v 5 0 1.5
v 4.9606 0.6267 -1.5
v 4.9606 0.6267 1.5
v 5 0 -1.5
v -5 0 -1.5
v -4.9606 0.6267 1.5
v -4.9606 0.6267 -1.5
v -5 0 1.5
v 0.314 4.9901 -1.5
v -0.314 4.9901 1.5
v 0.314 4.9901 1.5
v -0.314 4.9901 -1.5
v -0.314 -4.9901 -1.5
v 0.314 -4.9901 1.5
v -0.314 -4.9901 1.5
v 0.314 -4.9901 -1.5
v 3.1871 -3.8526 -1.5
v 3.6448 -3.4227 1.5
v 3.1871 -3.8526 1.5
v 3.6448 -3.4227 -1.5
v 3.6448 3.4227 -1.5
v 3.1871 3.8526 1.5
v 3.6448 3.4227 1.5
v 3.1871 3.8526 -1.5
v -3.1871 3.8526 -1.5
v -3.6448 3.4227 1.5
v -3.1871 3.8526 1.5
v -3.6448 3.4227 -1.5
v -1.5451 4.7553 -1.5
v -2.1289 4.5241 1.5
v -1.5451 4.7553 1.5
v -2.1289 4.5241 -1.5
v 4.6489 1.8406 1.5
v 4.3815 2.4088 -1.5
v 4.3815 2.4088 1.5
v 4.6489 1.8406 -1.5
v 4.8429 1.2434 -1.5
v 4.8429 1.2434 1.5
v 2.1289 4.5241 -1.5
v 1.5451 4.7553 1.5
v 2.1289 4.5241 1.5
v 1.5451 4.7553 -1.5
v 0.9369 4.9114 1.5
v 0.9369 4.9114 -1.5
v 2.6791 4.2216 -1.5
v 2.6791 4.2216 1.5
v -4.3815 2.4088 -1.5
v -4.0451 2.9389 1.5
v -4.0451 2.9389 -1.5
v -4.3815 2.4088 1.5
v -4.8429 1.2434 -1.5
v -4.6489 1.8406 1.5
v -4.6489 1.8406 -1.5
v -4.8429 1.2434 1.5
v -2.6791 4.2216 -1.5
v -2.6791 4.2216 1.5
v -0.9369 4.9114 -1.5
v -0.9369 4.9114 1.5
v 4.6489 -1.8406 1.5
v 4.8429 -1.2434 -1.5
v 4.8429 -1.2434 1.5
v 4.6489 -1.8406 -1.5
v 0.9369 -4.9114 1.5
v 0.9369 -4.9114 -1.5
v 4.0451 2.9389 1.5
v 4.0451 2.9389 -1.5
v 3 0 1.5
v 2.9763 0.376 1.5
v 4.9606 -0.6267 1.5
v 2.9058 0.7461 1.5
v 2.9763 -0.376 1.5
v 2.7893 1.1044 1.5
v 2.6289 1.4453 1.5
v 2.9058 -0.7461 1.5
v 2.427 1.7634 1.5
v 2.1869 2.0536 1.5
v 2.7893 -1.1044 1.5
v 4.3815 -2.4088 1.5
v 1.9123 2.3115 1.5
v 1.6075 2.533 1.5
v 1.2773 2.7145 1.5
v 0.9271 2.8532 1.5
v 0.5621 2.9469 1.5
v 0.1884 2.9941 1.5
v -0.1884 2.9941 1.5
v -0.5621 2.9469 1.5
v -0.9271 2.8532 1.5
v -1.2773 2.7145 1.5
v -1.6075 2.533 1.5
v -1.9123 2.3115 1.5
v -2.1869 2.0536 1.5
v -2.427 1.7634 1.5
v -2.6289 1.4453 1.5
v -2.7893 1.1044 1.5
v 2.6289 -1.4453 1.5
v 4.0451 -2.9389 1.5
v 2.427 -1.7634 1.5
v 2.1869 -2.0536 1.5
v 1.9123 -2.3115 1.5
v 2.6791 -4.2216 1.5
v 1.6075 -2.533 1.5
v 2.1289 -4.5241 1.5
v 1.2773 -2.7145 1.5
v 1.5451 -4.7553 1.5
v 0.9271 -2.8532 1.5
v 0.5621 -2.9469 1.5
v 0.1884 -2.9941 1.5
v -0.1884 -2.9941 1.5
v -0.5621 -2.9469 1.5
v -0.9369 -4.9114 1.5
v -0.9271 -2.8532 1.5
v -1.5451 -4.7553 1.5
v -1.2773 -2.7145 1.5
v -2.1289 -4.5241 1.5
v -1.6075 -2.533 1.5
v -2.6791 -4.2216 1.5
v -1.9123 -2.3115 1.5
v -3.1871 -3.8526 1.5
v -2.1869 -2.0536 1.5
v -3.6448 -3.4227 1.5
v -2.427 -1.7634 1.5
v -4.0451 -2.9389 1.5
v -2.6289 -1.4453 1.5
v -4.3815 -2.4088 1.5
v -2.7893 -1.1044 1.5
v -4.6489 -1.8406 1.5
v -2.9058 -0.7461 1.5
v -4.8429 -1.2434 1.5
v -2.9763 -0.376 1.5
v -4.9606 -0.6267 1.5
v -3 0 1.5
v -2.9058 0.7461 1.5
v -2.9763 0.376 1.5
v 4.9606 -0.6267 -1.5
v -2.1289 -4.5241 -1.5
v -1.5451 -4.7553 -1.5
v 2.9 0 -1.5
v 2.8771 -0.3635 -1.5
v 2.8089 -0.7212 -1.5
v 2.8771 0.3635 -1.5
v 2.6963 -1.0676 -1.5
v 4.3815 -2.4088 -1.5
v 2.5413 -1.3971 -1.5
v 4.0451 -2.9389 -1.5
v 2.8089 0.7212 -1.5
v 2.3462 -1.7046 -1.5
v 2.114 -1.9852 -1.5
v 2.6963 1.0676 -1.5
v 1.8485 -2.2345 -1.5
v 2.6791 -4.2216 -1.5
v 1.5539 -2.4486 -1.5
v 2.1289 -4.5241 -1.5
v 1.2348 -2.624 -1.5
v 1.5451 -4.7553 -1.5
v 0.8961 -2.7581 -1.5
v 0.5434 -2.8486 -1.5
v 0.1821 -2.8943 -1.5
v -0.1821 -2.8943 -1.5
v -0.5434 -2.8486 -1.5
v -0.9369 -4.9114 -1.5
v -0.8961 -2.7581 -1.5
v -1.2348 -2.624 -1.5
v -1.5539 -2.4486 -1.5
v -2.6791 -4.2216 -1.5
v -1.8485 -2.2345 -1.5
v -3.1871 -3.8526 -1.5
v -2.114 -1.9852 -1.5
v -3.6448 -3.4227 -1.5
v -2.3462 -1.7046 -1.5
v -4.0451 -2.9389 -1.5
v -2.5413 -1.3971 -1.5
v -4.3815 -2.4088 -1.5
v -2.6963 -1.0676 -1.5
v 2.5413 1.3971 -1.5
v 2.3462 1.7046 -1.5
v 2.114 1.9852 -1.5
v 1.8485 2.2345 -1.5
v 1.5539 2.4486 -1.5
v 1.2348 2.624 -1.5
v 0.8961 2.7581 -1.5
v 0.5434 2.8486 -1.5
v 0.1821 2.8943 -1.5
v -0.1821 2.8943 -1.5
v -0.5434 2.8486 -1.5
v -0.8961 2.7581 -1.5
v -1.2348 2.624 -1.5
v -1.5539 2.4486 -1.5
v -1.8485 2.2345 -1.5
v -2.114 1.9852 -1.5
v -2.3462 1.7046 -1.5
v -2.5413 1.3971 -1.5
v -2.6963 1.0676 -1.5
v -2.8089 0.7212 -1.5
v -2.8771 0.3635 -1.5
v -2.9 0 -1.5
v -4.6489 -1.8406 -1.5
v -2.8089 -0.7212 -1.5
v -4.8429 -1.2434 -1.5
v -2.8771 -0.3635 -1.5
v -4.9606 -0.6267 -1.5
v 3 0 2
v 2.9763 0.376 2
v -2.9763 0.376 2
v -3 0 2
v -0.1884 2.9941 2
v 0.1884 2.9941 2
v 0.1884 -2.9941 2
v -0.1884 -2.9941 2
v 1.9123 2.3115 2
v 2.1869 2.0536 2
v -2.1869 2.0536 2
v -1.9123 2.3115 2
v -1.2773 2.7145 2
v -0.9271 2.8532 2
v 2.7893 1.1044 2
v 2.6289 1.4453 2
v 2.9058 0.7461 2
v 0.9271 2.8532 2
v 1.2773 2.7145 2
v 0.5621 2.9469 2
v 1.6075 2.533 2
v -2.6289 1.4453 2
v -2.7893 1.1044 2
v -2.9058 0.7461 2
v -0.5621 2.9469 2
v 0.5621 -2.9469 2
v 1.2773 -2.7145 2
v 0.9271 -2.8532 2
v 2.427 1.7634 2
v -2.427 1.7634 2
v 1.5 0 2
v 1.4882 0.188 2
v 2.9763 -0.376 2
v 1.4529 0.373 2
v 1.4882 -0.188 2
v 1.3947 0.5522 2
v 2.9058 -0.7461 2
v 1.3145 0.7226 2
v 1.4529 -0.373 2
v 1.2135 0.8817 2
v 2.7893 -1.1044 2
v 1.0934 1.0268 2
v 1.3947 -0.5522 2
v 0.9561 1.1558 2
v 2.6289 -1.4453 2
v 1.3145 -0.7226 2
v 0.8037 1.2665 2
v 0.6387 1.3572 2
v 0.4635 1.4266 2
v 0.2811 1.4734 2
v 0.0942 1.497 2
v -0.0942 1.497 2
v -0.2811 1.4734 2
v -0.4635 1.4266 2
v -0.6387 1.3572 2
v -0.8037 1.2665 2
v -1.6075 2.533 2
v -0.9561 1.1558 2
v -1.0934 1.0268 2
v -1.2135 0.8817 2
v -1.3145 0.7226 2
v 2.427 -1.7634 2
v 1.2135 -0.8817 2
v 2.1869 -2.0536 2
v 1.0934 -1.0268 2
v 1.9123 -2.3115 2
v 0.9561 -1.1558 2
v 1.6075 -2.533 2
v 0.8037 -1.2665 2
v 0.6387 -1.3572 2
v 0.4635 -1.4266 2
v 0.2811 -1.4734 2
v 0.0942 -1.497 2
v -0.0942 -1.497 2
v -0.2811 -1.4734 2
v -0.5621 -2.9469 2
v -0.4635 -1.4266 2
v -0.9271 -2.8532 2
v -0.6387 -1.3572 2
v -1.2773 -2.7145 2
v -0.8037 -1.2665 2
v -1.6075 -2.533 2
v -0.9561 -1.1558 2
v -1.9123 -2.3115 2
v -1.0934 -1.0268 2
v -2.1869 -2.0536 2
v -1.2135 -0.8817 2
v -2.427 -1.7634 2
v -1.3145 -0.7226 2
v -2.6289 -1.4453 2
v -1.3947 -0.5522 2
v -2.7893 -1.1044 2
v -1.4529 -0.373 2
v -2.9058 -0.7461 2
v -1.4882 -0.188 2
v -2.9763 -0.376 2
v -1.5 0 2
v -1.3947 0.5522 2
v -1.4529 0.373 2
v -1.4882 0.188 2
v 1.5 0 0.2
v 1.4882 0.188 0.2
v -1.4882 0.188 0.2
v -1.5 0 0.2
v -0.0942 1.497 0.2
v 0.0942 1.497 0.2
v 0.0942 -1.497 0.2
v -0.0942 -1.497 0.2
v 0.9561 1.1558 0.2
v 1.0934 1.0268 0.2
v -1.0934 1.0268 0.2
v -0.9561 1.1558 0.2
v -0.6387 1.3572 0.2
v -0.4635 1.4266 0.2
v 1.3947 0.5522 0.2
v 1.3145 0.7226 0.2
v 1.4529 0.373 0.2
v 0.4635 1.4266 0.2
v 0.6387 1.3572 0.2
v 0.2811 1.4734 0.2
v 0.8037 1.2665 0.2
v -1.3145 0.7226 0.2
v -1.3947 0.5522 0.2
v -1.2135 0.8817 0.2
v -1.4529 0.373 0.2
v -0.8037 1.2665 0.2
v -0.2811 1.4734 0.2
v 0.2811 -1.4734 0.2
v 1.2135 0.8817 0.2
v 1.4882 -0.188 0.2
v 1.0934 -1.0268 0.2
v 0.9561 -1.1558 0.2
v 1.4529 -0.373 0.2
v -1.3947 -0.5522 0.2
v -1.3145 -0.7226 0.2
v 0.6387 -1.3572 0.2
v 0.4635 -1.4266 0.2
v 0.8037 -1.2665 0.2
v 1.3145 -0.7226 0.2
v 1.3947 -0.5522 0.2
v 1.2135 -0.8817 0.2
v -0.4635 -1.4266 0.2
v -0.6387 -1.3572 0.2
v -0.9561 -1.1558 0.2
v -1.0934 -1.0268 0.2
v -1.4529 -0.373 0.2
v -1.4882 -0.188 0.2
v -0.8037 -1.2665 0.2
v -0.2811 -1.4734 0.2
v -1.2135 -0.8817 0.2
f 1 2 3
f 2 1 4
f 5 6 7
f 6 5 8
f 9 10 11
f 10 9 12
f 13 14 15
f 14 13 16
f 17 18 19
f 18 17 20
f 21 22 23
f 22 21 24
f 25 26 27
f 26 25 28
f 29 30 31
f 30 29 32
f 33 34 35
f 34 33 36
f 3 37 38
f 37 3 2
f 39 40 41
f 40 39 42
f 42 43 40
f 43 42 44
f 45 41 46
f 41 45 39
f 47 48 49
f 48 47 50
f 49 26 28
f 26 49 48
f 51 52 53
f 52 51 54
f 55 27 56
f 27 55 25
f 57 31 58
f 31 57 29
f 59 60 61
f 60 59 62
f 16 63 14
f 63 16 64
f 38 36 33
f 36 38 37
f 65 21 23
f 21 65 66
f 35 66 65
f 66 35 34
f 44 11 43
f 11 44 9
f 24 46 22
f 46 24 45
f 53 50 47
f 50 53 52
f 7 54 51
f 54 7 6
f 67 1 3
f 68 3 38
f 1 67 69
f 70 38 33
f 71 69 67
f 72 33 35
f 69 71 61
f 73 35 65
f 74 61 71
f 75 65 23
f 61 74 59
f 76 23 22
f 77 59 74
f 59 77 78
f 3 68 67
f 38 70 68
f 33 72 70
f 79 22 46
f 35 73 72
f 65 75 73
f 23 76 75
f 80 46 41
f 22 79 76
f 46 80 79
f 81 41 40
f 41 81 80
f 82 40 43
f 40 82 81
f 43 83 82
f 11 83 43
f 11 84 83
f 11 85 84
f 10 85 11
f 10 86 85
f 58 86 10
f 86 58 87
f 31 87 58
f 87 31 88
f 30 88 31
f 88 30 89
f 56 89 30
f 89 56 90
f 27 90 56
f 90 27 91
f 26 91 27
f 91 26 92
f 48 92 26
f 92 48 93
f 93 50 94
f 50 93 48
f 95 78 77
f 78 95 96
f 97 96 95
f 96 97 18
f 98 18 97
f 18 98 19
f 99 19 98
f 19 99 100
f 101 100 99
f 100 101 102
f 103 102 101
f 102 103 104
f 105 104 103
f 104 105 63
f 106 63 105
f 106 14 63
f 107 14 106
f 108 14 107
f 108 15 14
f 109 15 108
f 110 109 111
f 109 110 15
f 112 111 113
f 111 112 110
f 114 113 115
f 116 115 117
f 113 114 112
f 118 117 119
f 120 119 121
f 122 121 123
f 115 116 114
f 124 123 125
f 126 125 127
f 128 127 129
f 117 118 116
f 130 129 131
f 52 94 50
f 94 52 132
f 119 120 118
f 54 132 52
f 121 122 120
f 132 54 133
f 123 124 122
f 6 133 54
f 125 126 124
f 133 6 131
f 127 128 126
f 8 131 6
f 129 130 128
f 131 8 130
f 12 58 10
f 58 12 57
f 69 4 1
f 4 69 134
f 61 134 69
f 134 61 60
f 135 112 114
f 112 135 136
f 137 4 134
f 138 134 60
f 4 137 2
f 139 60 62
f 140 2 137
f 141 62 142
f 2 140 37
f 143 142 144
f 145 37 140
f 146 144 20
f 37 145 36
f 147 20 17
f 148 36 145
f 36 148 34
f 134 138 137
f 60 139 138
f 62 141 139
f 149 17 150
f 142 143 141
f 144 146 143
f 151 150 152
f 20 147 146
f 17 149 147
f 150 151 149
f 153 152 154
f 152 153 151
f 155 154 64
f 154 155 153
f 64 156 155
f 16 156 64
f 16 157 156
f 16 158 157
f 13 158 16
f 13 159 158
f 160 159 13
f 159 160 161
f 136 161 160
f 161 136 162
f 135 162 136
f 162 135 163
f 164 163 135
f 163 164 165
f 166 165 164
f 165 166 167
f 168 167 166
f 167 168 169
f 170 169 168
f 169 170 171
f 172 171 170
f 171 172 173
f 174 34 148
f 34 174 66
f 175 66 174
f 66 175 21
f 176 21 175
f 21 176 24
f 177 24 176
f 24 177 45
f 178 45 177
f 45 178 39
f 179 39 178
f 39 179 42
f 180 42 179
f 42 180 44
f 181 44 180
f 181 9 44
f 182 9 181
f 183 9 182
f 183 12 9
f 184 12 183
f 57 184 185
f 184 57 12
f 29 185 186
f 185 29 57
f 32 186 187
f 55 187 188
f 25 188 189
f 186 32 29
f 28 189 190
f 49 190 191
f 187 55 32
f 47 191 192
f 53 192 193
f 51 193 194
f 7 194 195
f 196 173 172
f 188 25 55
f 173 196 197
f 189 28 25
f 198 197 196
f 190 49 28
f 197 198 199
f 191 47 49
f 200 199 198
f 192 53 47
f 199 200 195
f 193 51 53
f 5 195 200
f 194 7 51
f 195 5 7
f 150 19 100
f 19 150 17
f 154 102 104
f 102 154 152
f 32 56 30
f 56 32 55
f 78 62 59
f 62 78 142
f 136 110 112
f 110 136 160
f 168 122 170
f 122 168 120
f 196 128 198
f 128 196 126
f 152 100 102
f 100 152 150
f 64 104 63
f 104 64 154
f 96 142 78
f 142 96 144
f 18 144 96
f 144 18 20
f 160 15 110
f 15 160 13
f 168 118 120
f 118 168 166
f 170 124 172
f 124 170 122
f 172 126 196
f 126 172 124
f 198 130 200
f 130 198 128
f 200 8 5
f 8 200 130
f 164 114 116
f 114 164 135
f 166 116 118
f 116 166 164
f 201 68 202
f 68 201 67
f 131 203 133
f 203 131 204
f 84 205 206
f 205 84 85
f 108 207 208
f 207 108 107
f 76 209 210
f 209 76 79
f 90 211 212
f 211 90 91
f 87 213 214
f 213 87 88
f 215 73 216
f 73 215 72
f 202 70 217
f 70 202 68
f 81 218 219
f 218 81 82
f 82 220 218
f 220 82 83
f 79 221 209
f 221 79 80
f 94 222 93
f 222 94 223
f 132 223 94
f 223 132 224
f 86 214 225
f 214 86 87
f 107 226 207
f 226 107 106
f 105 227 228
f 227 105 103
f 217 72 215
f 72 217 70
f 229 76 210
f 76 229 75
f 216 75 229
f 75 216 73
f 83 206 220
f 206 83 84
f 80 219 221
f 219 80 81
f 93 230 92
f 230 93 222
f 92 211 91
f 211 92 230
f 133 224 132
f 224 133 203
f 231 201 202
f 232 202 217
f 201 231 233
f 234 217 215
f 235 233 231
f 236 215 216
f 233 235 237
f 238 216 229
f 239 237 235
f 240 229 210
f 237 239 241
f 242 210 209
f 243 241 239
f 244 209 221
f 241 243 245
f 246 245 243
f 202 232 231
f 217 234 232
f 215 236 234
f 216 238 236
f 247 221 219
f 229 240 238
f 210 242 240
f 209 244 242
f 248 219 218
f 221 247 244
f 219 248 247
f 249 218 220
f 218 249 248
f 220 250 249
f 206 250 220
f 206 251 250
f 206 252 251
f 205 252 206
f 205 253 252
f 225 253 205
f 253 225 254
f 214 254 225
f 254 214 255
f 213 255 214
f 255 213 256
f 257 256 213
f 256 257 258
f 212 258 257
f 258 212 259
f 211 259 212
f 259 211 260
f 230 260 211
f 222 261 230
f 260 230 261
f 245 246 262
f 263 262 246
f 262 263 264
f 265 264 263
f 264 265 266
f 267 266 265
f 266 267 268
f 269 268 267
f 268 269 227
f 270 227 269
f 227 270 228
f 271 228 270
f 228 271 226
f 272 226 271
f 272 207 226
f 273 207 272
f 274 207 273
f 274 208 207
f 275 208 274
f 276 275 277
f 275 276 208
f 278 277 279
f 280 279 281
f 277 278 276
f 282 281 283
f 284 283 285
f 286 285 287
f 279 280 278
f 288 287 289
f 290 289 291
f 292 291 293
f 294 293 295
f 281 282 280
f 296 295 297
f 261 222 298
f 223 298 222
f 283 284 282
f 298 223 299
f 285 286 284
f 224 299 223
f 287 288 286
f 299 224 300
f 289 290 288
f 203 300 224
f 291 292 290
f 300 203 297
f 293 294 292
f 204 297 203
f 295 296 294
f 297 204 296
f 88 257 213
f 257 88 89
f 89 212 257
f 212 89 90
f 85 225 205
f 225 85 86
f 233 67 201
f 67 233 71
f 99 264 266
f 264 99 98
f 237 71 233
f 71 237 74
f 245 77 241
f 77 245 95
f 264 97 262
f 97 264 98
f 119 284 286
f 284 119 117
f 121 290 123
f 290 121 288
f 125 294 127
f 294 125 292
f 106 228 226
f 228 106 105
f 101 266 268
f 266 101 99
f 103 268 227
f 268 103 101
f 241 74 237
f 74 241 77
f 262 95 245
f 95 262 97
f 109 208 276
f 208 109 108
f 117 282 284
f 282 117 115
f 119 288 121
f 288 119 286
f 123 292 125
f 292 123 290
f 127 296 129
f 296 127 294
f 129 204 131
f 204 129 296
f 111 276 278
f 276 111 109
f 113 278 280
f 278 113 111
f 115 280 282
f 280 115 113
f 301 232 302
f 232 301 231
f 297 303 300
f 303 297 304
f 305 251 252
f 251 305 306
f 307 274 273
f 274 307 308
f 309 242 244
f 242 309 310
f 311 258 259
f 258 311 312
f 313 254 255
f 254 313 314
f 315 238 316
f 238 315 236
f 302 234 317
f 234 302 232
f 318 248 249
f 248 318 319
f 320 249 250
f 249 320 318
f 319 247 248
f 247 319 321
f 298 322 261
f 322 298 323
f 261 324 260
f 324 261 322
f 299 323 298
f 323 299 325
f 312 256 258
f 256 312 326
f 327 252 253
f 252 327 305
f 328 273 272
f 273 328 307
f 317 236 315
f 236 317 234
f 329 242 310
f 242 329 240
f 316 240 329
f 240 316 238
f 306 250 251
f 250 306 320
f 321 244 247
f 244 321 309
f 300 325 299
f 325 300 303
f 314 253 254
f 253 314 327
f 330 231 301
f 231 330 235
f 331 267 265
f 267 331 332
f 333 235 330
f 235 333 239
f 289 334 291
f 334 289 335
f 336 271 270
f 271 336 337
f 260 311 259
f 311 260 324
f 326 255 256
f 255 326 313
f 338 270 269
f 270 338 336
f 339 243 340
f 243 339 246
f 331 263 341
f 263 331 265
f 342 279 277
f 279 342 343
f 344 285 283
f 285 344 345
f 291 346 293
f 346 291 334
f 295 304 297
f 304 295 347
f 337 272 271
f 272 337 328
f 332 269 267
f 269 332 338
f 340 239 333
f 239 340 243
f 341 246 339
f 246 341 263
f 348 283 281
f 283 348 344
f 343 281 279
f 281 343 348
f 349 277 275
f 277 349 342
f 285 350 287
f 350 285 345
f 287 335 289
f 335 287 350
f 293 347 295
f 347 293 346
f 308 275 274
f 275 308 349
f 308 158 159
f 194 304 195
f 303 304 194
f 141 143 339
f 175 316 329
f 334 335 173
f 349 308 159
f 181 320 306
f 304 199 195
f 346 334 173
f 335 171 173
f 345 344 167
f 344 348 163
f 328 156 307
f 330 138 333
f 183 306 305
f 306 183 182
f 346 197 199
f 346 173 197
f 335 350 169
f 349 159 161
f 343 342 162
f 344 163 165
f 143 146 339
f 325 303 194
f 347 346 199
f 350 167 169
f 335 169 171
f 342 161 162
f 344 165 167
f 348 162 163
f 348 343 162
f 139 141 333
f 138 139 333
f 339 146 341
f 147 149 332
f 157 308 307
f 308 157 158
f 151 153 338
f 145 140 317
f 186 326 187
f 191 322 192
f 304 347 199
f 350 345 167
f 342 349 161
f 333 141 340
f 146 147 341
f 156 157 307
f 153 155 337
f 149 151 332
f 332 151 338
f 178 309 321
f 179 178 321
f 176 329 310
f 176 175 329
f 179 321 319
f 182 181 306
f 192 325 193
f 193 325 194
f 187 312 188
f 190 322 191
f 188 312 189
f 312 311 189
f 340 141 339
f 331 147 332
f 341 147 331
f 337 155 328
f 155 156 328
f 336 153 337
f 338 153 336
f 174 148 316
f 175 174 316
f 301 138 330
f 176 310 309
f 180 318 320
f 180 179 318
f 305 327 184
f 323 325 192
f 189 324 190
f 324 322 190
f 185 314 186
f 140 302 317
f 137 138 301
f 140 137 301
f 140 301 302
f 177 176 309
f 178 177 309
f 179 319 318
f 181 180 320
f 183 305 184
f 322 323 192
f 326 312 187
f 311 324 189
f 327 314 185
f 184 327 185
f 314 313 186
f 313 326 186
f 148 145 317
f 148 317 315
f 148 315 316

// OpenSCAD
$fn = 50;


difference() {
	union() {
		translate(v = [0, 0, -1.5000000000]) {
			rotate(a = [0, 0, 0]) {
				cylinder(h = 3, r = 5.0000000000);
			}
		}
		translate(v = [0, 0, -1.5000000000]) {
			rotate(a = [0, 0, 0]) {
				cylinder(h = 3.5000000000, r = 3.0000000000);
			}
		}
	}
	union() {
		translate(v = [0, 0, -125.0000000000]) {
			rotate(a = [0, 0, 0]) {
				cylinder(h = 250, r = 1.5000000000);
			}
		}
		#translate(v = [0, 0, 0.2000000000]) {
			rotate(a = [0, 180, 0]) {
				cylinder(h = 1.7000000000, r1 = 1.5000000000, r2 = 2.9000000000);
			}
		}
		#translate(v = [0, 0, 2.0000000000]) {
			rotate(a = [0, 180, 0]) {
				cylinder(h = 3.5000000000, r = 1.5000000000);
			}
		}
	}
}
